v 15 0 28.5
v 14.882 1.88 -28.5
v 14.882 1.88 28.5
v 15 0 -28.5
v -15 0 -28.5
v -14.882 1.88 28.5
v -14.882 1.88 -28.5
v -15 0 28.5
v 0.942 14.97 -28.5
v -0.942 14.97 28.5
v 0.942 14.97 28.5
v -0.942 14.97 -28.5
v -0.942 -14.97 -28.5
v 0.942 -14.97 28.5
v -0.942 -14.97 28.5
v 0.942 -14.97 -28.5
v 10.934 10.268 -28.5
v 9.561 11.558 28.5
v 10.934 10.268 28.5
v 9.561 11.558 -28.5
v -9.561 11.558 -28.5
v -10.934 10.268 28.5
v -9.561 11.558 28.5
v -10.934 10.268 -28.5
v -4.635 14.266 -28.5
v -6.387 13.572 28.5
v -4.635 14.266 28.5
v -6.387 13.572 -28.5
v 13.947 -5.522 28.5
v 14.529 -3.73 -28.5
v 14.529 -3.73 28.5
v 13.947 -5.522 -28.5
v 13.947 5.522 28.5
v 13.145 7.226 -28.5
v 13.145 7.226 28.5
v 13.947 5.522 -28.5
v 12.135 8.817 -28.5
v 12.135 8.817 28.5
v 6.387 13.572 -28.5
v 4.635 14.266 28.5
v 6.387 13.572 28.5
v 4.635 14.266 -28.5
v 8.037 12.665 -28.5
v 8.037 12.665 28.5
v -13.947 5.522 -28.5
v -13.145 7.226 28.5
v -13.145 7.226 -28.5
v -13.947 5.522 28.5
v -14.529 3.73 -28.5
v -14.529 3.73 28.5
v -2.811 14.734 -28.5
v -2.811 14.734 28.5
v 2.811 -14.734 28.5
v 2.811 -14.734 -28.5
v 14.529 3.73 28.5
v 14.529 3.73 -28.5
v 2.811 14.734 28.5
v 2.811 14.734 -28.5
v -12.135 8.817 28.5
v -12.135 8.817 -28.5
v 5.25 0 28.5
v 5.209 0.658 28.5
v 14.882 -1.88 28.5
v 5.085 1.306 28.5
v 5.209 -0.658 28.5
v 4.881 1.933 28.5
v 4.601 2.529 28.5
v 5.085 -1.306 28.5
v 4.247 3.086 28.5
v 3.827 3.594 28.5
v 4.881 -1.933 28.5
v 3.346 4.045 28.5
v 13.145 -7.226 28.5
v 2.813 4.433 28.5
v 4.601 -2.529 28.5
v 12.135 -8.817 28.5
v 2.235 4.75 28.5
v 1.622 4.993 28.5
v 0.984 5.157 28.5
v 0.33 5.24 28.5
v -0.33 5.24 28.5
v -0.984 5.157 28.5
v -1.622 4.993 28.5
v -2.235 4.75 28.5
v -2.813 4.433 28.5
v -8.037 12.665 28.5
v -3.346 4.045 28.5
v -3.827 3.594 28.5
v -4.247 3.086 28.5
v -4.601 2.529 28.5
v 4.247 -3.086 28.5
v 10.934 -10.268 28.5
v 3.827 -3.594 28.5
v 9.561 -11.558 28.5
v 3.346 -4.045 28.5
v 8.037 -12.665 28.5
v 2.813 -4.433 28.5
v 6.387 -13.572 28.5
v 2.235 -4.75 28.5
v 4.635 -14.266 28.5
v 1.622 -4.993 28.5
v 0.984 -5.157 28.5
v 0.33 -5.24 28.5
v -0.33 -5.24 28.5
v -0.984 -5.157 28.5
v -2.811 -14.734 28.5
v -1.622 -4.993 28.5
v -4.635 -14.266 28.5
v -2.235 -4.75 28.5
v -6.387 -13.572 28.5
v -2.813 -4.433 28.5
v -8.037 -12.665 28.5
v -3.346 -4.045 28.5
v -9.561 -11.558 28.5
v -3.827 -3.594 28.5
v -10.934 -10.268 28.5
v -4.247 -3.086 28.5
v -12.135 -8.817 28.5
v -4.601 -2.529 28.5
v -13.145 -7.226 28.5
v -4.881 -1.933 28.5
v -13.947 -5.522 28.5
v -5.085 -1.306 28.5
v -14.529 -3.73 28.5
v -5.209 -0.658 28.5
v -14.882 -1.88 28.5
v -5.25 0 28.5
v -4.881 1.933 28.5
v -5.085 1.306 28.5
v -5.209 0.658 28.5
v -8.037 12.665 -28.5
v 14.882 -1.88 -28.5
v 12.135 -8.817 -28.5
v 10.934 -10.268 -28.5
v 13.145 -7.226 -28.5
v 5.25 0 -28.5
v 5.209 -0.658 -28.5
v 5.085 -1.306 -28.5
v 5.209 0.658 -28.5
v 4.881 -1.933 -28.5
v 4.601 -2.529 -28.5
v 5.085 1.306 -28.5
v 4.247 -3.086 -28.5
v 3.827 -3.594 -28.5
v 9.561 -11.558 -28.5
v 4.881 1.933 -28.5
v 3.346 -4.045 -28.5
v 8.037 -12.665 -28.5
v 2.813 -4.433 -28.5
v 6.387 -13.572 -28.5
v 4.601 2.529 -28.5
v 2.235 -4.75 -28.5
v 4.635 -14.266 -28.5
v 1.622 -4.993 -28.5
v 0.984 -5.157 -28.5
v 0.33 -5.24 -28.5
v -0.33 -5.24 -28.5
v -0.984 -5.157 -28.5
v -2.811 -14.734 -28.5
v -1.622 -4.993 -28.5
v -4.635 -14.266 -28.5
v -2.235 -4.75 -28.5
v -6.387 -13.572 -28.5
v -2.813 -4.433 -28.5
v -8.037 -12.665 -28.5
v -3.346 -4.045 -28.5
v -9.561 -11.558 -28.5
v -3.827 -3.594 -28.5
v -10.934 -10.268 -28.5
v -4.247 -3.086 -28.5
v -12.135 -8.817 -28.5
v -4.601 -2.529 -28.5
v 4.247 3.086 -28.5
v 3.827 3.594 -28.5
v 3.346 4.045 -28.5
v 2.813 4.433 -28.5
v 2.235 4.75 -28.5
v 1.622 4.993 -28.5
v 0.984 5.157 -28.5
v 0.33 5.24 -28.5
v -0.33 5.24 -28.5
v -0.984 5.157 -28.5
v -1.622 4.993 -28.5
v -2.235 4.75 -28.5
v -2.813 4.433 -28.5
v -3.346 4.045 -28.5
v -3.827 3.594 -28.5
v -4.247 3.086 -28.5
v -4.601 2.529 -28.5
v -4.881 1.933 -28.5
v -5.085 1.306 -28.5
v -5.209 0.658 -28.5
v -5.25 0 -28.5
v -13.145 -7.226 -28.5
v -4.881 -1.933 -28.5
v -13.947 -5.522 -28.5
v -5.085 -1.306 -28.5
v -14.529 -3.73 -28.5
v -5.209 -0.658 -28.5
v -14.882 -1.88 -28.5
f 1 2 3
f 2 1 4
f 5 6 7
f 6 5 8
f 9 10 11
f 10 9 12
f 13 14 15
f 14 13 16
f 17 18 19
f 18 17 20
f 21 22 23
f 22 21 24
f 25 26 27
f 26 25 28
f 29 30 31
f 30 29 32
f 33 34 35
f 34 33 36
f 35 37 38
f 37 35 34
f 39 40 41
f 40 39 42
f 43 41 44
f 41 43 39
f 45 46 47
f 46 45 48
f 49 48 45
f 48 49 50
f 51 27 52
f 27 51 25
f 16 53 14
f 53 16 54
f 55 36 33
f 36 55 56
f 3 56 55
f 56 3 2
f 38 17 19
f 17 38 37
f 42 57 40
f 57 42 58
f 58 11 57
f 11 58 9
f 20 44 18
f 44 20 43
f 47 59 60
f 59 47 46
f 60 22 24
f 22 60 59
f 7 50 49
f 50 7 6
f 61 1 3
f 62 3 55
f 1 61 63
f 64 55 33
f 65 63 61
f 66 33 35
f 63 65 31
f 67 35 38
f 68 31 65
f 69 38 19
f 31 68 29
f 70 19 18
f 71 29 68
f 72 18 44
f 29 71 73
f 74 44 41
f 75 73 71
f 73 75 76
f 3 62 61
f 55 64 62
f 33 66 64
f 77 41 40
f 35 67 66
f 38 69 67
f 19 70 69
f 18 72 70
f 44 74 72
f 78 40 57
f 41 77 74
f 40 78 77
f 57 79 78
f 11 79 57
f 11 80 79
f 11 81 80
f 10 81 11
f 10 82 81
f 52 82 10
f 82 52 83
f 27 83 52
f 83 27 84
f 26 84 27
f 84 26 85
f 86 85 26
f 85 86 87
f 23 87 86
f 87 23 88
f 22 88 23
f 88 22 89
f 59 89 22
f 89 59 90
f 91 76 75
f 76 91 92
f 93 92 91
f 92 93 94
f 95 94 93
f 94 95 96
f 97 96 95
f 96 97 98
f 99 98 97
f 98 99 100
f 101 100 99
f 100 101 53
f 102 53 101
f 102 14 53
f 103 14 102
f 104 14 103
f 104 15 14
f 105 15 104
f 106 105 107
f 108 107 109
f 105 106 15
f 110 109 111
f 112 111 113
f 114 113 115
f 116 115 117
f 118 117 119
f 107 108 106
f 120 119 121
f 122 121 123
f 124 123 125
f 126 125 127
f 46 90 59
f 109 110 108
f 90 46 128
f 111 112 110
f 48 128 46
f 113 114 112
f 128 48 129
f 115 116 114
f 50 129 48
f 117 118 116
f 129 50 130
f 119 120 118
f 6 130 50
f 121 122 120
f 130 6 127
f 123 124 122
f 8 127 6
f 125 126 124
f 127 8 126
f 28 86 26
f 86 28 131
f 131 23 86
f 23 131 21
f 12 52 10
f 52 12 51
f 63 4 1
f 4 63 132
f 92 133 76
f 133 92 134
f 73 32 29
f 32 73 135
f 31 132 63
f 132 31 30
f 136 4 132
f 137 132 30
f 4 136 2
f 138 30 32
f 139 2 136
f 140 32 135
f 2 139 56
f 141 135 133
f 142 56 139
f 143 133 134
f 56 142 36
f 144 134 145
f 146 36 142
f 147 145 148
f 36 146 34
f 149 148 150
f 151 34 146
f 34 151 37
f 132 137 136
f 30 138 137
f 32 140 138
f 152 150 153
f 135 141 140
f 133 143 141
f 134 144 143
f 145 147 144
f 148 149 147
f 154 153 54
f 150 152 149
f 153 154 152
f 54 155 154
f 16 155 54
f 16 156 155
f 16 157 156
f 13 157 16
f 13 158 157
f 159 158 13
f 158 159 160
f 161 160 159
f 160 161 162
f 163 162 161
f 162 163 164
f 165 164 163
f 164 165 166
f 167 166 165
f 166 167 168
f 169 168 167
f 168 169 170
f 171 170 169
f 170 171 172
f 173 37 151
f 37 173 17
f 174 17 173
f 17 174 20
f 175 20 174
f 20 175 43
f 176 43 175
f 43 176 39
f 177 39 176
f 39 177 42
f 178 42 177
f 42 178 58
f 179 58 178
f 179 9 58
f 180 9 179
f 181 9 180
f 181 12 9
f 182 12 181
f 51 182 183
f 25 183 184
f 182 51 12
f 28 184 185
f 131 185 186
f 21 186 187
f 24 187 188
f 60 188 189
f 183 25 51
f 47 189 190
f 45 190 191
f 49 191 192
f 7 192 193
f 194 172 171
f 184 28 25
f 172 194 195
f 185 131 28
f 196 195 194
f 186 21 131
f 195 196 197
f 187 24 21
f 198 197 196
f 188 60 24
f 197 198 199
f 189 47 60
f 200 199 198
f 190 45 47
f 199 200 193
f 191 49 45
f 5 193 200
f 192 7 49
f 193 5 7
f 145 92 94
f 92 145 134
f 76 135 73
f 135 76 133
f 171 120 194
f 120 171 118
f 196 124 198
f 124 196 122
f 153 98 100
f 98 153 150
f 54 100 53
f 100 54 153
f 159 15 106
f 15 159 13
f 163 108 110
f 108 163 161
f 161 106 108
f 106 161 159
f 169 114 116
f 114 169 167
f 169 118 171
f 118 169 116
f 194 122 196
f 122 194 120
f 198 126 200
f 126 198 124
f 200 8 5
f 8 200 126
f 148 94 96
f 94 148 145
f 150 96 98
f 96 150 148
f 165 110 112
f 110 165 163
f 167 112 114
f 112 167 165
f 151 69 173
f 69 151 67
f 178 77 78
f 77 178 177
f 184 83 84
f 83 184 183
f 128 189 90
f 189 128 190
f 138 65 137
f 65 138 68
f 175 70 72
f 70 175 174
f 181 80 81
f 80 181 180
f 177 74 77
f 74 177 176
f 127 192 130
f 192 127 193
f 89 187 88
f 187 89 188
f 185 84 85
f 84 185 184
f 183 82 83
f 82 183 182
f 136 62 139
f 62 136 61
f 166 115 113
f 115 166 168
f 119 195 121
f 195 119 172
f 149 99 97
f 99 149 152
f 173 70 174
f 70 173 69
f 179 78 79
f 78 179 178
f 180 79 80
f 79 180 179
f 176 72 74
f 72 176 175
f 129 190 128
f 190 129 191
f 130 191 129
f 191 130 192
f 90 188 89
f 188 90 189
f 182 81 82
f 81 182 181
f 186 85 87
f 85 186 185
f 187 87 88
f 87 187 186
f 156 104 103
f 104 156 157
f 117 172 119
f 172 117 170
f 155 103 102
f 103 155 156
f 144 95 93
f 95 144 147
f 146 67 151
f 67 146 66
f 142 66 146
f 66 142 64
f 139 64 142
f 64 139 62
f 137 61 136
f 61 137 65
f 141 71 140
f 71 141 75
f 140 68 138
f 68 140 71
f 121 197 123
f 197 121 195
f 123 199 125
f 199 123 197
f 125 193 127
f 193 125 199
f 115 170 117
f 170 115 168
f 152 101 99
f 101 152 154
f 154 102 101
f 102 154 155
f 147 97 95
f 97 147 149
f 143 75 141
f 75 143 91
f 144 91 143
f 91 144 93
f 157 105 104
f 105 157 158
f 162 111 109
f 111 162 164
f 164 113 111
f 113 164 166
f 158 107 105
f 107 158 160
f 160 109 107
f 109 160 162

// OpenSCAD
$fn = 50;


difference() {
	union() {
		translate(v = [0, 0, -28.5000000000]) {
			cylinder(h = 57, r = 15.0000000000);
		}
	}
	union() {
		translate(v = [0, 0, -100.0000000000]) {
			cylinder(h = 200, r = 5.2500000000);
		}
	}
}
